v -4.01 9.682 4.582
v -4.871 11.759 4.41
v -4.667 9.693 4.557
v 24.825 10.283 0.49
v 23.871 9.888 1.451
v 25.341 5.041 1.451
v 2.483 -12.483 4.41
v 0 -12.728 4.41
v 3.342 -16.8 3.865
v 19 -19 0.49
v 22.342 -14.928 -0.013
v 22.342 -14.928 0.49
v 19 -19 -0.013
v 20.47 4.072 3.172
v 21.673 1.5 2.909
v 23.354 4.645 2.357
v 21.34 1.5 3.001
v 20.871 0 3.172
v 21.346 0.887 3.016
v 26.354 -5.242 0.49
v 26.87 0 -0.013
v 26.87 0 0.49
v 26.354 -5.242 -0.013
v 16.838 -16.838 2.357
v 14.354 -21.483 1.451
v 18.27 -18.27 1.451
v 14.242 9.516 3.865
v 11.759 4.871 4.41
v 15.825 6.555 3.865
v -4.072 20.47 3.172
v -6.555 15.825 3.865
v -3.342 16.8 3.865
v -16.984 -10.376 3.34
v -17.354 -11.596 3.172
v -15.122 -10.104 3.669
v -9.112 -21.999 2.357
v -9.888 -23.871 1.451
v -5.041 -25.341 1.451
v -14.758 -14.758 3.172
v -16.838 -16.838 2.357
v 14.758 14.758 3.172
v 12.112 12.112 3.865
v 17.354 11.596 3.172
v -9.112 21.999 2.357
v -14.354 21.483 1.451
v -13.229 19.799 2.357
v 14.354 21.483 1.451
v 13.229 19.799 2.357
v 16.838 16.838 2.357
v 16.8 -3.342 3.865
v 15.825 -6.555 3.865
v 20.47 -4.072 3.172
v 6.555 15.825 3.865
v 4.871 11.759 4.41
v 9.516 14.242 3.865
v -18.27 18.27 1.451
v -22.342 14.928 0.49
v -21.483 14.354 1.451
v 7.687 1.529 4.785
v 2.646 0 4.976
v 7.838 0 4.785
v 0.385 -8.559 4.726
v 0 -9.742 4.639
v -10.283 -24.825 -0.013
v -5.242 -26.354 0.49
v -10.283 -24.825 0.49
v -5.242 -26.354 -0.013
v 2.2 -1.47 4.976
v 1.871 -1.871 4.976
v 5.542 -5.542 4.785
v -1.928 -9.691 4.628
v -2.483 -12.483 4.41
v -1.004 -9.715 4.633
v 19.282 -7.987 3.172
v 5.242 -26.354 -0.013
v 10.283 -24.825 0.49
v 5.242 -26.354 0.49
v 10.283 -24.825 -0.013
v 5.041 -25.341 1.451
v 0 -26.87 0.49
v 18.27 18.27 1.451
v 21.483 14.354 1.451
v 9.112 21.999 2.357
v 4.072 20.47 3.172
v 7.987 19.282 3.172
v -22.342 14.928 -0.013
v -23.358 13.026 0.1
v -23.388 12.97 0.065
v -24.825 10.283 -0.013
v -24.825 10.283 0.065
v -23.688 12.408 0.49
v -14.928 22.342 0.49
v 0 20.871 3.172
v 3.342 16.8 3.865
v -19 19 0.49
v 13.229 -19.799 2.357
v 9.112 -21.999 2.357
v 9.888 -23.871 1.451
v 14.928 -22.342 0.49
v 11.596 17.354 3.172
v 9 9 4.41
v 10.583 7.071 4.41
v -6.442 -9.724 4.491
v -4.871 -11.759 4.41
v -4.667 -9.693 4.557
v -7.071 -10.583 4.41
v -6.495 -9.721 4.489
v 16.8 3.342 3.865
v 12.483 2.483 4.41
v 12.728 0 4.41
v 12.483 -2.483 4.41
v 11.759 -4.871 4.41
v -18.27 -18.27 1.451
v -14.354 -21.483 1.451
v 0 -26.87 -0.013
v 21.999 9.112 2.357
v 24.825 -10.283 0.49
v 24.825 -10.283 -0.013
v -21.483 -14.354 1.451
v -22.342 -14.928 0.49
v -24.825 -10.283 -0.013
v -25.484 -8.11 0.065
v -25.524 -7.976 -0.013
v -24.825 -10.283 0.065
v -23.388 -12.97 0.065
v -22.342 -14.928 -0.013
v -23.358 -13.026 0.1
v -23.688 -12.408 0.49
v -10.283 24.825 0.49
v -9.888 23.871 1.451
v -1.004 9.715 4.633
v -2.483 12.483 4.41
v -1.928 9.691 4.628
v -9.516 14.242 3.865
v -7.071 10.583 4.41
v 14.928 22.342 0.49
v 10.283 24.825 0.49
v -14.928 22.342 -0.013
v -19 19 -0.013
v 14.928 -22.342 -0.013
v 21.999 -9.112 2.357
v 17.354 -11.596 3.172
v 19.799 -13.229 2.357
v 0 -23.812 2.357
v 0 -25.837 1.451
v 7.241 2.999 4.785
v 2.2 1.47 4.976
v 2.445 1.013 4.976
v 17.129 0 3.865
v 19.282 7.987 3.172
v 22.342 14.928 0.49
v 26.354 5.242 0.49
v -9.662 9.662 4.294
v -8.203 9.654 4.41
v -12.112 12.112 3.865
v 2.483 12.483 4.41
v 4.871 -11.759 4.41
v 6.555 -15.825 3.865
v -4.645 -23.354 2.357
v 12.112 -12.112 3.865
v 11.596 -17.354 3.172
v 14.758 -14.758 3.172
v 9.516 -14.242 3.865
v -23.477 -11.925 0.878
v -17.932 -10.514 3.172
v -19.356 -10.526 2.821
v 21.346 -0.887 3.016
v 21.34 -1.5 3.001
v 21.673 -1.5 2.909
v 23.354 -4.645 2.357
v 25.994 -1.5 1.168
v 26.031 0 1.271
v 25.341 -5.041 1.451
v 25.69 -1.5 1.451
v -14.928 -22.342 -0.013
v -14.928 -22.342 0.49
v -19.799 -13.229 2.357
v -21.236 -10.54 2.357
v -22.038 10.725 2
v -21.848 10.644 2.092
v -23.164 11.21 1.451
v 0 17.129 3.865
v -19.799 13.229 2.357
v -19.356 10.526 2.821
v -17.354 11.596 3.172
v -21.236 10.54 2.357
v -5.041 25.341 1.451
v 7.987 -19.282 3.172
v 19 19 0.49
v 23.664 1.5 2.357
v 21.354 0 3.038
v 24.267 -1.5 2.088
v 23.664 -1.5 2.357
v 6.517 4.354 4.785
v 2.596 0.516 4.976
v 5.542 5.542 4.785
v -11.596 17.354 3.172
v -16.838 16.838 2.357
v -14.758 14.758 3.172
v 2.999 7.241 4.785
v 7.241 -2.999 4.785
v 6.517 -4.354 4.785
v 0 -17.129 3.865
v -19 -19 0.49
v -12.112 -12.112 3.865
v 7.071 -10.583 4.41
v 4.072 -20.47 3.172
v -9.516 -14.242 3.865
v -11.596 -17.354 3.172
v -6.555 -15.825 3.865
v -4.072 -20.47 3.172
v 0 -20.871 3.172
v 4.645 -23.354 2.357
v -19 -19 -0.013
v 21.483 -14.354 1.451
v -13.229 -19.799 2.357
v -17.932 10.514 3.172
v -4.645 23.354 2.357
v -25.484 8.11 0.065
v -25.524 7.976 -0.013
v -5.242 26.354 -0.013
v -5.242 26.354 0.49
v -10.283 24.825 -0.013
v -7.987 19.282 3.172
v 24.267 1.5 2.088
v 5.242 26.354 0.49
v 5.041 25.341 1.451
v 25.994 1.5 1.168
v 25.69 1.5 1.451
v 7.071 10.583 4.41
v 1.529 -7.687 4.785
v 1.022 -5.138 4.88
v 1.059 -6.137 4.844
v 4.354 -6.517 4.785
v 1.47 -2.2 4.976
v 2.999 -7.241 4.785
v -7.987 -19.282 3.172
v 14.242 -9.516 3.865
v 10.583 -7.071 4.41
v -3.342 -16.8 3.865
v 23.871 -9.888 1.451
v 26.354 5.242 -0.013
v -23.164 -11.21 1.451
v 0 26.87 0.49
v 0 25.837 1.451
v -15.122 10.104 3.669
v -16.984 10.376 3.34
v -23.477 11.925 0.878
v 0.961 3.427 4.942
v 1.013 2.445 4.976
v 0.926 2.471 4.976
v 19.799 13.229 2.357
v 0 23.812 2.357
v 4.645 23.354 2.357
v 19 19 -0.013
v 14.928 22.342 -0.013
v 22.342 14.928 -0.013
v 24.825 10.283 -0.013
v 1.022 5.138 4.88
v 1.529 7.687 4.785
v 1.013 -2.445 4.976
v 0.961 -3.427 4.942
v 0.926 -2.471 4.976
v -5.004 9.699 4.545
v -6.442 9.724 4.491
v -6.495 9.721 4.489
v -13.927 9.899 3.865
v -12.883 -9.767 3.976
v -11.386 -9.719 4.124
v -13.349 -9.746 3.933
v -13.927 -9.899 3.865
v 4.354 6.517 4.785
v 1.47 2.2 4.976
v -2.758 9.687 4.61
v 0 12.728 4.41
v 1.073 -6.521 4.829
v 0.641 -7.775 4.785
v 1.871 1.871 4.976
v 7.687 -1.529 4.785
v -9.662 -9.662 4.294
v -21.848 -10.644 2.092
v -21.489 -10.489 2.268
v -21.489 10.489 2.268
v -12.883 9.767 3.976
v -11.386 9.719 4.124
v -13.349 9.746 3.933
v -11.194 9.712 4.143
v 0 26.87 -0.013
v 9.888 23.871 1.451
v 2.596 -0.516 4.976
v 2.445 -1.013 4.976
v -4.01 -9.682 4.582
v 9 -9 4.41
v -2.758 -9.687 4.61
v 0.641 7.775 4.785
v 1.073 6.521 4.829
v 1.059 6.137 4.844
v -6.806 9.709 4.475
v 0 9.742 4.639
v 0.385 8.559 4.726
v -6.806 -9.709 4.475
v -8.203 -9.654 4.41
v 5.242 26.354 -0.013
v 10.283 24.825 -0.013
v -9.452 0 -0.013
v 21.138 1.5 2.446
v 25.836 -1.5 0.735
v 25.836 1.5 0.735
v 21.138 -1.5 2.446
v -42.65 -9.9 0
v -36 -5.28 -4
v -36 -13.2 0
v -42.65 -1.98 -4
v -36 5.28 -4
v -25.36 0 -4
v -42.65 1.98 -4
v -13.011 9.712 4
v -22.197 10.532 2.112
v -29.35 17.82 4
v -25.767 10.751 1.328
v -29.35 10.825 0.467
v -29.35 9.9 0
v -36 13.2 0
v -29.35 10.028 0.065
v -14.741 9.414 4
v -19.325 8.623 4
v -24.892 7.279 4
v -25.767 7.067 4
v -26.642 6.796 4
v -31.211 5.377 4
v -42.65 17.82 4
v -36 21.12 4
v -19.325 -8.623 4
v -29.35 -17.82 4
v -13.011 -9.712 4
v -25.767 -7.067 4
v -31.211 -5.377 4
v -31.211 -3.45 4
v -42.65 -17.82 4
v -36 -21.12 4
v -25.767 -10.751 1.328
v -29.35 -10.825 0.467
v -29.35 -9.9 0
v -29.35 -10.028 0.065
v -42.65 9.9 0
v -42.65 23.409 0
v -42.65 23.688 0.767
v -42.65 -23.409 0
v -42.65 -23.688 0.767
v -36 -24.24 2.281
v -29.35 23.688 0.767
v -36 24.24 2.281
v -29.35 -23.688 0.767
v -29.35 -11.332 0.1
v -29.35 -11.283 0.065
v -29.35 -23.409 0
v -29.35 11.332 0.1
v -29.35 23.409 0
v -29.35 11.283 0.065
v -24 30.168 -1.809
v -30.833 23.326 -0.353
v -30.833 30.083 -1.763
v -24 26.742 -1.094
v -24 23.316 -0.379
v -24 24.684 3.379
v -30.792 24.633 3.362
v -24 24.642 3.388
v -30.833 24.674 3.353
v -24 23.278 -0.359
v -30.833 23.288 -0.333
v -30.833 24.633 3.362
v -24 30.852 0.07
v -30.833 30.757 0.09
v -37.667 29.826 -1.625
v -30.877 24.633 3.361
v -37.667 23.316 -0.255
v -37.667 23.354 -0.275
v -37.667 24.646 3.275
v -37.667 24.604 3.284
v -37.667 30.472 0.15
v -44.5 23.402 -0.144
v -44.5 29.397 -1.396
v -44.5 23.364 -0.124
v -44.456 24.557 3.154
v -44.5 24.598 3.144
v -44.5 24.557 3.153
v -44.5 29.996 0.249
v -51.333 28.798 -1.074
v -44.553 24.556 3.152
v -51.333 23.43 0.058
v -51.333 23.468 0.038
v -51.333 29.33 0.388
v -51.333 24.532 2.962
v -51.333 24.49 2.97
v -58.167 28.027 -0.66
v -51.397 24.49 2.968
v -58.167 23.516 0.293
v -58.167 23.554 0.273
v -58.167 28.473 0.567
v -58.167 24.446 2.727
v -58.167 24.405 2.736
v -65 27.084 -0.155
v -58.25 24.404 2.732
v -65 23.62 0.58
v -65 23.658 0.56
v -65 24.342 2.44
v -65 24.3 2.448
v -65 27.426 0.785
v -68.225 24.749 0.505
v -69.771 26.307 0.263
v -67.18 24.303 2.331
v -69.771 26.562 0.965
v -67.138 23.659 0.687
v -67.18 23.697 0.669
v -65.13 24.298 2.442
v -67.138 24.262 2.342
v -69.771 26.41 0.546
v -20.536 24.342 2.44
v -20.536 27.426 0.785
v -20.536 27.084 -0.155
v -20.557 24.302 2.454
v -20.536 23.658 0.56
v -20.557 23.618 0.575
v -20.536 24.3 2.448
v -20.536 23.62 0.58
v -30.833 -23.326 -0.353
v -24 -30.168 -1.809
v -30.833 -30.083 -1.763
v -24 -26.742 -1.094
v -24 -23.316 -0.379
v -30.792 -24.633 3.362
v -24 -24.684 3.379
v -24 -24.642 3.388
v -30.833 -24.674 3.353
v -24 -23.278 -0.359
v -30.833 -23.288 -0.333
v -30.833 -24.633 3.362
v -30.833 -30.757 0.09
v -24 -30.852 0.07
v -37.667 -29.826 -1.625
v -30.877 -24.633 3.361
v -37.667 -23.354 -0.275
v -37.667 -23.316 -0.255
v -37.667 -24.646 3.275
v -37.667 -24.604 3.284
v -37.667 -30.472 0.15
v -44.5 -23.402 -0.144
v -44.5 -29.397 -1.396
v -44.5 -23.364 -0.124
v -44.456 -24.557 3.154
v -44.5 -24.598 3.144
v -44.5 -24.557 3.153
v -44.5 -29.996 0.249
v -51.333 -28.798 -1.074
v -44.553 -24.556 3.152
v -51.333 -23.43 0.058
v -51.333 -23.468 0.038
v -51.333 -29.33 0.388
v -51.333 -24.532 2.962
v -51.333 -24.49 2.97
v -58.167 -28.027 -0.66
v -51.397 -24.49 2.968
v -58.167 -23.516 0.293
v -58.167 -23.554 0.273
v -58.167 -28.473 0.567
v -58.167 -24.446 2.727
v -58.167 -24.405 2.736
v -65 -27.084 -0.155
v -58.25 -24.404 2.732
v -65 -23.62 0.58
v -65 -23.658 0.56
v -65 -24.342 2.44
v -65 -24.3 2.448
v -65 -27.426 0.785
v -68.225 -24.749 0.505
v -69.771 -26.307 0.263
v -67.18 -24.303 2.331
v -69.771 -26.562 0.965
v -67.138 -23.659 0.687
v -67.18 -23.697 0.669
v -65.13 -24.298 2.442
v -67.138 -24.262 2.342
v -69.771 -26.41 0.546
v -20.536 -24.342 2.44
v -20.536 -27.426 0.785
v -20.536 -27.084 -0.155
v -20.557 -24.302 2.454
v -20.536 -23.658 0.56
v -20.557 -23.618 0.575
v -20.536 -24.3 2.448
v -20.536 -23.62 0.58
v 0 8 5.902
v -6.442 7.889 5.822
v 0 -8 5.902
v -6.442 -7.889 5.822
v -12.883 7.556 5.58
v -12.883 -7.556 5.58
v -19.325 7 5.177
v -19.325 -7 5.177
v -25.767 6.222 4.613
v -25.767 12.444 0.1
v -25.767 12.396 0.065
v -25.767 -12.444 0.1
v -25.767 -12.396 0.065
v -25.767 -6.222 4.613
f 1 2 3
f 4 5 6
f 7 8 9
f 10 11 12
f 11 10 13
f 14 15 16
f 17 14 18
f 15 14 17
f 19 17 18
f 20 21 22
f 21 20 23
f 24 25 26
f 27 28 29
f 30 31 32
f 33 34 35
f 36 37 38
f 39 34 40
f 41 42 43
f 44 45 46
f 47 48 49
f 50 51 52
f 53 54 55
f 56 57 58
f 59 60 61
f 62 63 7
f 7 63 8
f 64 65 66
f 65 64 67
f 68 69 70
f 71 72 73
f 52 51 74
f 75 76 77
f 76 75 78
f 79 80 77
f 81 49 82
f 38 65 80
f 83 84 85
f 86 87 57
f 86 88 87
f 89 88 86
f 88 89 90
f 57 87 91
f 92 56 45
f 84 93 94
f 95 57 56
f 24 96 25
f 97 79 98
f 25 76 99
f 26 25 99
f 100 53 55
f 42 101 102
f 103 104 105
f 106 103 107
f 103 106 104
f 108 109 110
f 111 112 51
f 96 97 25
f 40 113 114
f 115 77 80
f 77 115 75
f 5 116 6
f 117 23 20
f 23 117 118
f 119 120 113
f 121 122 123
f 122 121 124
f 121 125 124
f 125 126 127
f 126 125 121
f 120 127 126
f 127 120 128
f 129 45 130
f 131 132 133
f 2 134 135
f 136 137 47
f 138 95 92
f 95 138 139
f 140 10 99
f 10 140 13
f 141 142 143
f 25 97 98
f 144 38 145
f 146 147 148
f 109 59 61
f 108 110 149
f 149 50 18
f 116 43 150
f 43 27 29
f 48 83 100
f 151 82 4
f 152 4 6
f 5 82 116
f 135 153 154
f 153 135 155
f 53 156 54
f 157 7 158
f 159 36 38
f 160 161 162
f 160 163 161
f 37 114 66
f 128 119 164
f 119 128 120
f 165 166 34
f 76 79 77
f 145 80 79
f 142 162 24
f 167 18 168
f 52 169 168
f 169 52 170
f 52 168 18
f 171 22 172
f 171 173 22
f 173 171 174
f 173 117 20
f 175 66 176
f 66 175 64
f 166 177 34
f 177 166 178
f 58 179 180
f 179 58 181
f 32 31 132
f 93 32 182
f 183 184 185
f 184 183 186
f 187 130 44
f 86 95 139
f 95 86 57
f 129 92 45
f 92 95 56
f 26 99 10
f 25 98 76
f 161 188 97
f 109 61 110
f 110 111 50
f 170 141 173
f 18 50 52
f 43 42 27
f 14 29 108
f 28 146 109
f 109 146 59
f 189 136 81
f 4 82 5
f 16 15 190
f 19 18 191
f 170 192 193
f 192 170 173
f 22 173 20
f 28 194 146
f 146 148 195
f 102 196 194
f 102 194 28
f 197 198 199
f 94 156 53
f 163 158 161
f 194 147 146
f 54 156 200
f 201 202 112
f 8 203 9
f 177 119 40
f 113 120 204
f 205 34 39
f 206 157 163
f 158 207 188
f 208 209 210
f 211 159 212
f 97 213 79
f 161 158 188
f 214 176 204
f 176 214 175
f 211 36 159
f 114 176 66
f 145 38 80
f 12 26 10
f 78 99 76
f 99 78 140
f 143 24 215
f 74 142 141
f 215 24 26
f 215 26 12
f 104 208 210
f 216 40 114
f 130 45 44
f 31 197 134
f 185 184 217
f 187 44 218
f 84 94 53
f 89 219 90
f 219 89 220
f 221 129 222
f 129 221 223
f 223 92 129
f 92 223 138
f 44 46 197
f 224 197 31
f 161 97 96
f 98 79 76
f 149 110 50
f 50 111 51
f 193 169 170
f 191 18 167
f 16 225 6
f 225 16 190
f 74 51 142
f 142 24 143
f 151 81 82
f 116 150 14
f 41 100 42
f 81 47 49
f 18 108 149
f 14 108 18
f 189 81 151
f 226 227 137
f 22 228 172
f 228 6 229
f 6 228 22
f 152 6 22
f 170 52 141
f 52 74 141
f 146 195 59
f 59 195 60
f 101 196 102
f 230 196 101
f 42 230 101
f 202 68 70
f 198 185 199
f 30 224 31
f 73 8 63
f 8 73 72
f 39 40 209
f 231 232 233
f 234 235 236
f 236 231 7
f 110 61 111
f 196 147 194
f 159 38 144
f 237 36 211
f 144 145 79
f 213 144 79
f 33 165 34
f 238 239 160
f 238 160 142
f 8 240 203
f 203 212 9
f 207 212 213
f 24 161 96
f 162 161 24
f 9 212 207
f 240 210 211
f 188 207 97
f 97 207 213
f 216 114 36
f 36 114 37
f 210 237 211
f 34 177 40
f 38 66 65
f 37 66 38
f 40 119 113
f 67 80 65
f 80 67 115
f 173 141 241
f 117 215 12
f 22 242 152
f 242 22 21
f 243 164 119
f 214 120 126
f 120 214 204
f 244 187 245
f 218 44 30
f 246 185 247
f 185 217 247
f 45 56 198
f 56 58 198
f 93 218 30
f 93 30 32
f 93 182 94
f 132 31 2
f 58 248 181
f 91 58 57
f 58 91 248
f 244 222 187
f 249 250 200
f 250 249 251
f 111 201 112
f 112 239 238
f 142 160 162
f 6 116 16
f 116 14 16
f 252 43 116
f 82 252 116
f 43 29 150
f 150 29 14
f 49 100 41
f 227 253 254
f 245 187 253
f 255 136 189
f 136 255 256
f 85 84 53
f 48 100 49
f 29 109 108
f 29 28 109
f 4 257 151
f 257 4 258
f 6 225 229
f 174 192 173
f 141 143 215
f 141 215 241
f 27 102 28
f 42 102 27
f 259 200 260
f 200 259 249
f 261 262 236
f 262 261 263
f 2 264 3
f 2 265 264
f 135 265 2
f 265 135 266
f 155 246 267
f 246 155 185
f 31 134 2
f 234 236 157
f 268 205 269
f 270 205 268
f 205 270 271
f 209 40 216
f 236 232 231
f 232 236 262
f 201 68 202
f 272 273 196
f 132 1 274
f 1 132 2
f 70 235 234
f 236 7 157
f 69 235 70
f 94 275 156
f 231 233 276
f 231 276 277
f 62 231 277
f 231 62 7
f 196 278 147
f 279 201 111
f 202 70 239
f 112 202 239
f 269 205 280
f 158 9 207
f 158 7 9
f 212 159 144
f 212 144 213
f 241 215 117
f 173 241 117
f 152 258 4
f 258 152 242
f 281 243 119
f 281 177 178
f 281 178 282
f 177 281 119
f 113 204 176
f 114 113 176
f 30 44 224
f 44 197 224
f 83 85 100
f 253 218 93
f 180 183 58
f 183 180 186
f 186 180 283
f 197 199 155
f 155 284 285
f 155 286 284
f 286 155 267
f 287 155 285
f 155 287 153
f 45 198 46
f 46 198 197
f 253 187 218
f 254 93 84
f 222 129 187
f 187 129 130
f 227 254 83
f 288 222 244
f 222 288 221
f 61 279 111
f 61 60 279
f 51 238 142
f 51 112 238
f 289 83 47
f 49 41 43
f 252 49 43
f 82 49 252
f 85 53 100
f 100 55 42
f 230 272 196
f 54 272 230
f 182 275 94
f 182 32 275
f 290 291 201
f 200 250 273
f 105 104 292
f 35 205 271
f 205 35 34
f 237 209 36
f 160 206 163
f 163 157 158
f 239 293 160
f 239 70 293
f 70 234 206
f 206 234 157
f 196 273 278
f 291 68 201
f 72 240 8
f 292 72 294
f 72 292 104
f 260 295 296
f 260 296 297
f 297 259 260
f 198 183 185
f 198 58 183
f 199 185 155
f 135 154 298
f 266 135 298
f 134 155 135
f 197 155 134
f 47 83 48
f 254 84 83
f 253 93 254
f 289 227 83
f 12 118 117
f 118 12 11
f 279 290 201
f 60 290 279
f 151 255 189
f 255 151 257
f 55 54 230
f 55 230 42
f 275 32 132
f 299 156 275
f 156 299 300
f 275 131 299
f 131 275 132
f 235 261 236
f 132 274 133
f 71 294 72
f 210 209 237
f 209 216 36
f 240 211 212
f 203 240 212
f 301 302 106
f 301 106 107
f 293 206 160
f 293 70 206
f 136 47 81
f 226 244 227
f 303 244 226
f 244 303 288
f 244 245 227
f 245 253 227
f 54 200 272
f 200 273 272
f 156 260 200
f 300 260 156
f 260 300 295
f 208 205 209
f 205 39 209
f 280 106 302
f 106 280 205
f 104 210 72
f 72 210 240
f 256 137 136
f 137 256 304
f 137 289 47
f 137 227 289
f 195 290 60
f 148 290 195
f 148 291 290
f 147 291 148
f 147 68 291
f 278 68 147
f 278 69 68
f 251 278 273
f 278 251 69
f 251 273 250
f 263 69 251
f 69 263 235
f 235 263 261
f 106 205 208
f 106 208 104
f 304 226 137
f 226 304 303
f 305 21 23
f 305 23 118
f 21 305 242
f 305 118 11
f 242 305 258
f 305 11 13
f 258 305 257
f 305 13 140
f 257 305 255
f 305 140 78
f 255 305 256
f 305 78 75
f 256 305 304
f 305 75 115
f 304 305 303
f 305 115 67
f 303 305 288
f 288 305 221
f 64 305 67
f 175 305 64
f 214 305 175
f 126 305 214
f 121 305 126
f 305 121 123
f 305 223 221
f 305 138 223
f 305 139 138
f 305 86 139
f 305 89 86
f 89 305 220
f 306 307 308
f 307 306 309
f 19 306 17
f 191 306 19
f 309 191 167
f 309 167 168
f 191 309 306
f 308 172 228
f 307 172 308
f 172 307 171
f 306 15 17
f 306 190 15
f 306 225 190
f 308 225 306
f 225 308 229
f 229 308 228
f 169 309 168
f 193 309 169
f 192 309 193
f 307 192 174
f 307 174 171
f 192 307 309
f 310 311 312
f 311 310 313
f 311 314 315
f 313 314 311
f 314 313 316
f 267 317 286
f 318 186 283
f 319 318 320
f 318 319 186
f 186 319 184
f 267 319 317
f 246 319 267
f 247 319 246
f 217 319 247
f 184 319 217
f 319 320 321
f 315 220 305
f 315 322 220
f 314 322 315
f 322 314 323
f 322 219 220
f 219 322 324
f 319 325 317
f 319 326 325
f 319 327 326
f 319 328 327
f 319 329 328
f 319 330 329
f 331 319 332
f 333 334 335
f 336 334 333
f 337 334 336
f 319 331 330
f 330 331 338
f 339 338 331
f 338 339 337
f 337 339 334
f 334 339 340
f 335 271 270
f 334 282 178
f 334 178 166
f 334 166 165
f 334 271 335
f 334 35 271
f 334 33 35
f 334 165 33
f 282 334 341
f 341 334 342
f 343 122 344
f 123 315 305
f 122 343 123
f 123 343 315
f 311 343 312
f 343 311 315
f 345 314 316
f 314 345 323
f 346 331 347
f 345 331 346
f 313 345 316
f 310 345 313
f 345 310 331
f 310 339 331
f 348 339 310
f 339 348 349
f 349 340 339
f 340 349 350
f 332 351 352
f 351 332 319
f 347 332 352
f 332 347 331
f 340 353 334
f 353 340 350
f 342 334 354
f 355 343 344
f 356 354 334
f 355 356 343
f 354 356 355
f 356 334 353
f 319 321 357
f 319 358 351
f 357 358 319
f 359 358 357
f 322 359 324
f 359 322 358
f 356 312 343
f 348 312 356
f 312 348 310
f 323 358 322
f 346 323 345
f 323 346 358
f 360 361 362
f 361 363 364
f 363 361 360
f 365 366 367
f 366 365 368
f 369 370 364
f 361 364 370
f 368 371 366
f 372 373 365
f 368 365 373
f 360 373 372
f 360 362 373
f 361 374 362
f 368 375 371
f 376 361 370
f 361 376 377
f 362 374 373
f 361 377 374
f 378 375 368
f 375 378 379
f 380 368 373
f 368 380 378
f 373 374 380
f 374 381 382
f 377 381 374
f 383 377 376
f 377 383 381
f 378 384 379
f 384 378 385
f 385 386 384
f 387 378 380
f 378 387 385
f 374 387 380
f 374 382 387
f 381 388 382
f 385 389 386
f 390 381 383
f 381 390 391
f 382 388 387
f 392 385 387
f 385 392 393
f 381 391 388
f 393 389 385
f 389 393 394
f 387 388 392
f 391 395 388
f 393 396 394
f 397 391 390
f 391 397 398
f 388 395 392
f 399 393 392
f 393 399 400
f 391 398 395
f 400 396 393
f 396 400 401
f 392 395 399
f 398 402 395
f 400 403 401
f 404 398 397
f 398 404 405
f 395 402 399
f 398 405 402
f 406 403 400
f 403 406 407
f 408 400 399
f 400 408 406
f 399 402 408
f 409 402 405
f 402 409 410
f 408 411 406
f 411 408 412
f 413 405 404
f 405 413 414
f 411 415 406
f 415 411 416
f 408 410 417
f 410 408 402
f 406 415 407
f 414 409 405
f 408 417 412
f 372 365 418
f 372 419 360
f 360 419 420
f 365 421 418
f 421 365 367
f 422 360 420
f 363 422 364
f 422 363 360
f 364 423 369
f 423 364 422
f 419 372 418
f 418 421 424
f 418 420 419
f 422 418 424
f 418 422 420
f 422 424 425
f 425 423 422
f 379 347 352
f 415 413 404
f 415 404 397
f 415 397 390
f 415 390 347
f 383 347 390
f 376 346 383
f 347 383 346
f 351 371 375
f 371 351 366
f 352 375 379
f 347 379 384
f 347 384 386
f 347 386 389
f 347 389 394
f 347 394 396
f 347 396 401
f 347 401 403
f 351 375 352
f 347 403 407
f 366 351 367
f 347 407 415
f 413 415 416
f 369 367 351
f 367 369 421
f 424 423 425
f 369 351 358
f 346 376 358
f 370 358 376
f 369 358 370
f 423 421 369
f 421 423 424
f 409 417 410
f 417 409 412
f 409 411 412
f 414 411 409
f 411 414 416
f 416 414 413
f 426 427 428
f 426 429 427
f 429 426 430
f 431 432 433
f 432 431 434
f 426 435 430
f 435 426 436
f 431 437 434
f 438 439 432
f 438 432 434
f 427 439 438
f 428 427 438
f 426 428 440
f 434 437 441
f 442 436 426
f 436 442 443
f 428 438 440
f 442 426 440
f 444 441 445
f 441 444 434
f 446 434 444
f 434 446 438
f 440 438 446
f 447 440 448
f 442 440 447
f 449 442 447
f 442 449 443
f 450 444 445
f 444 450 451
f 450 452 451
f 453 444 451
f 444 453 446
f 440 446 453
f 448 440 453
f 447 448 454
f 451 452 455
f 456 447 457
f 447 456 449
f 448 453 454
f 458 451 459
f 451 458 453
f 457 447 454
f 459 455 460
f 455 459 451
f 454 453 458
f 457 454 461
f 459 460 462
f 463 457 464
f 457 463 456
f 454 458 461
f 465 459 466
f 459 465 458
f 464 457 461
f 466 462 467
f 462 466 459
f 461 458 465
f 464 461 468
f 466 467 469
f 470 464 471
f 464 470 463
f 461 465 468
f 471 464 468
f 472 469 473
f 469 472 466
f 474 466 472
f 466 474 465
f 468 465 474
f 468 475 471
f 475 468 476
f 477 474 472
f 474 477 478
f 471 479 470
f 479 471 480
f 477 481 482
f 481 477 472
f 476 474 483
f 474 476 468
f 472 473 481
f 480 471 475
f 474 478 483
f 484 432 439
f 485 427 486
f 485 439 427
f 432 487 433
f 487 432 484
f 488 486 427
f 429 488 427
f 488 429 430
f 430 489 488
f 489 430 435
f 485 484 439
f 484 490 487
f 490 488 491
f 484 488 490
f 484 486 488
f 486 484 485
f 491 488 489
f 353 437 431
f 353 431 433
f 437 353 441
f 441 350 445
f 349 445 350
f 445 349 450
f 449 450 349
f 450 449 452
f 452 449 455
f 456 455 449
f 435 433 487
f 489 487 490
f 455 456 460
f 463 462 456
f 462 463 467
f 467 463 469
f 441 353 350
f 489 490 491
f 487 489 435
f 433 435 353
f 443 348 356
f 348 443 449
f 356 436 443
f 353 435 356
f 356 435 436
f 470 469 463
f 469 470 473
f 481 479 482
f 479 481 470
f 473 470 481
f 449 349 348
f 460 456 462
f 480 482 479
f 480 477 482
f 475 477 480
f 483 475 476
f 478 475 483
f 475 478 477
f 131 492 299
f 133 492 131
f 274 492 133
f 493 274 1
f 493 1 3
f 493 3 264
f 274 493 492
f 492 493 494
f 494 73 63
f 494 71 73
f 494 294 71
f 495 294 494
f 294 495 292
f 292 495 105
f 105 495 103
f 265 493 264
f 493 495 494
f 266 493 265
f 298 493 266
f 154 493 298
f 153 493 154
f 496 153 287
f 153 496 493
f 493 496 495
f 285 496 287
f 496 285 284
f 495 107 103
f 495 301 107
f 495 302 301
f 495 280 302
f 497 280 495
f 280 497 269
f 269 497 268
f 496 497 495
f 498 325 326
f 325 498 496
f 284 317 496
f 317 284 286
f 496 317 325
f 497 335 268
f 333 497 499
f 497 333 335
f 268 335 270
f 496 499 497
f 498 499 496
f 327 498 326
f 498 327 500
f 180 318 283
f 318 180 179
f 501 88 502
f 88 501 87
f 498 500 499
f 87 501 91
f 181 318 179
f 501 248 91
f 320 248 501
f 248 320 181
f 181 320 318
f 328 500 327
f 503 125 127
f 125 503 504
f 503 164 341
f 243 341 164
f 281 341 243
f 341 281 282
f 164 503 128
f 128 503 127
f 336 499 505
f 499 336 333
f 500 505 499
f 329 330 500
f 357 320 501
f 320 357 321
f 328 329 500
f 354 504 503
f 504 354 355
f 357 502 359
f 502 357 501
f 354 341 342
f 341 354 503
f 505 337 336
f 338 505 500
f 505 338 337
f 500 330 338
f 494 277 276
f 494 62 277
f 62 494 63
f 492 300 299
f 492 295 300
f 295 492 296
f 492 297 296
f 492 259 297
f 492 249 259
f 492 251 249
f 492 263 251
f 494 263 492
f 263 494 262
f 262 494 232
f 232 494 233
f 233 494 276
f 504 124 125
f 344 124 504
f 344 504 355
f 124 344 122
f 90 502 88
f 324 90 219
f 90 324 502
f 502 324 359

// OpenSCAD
// file: icp.scad
use <../lib/util.scad>;

module icp_saucer_large(extend=false) {
    difference() {
        util_saucer(80,40,10);

        if (extend == false) {
            translate([-50,0,0])
                rotate([0,15,0])
                    cube(80,center=true);
        }

        util_mirrored([0,1,0])
            translate([-40,55,-1])
                rotate([-30,0,0])
                    cube(80,center=true);
            
        translate([40,0,0])
            rotate([0,30,0])
                cube(10,center=true);

        translate([35,0,6.4])
            rotate([0,-65,0])
                cube([5,5,7.5],center=true);

    }
}

module icp_saucer_large_2(faces=32) {
    difference() {
        util_ovoid(40,40,40,10,10,faces=faces);
        
        translate([0,0,-50])
        cube(100,center=true);

        translate([-50,0,0])
            rotate([0,15,0])
                cube(80,center=true);

        util_mirrored([0,1,0])
            translate([-40,55,-1])
                rotate([-30,0,0])
                    cube(80,center=true);
            
        translate([40,0,0])
            rotate([0,30,0])
                cube(10,center=true);

        translate([35,0,6.4])
            rotate([0,-65,0])
                cube([5,5,7.5],center=true);

    }
}

module tactical_shuttle() {
    difference() {
        util_saucer(9,9,2.25);

        translate([3,0,2])
            rotate([0,-66,0])
                cube([1.5,1.5,3],center=true);
    }

    translate([-3.5,0,1])
        scale([1,1,.5])
            rotate([90,0,0])
                cylinder(5,2,2,$fn=6,center=true);

    util_mirrored([0,1,0])
        translate([-4,1.5,1])
            rotate([90,0,0])
                util_nacelle(7.5,1,4,curved=true,up=false);
};


module runabout_old() {
    difference() {
        util_saucer(18,15,3);

        translate([6,0,3.3])
            rotate([0,-72,0])
                cube([3,3,5],center=true);
    }

    translate([-7.5,0,0])
        scale([1,1,.4])
            rotate([90,0,0])
                cylinder(9,4,4,$fn=6,center=true);

    translate([-7.5,0,1])
        mirror([0,0,1])
            util_nacelle_bar(15,2.5,2.5,.5);

    util_mirrored([0,1,0])
        translate([-3,6.5,-2])
            scale([1,1,.5])
                union() {
                    rotate([0,90,0])
                        cylinder(14,1.5,1.5,center=true,$fn=16);

                    util_mirrored([1,0,0])
                        translate([7,0,0])
                            sphere(1.5,$fn=16);
                }
}

module yacht() {
    difference() {
        util_saucer(27,27,3.5);

        translate([10,0,3])
            rotate([0,-75,0])
                cube([3,3,5],center=true);
    }

    translate([-13,0,0]) {

        difference(){
            mirror([0,0,1])
                util_saucer(16,8,2.5);

            translate([-4,0,-2.5])
                scale([1.5,1,1])
                    rotate([90,0,0])
                        cylinder(10,2.5,2.5,center=true,$fn=16);
            
            translate([-9,0,-5])
                cube(10,center=true);
            
            translate([7.5,0,-1.25])
                rotate([0,90,0])
                    cylinder(4,.5,1,$fn=16, center=true);
        }

        util_saucer(16,8,1.5);
    }

    translate([-11,0,0])
        difference() {
            util_nacelle_bar(25,2.5,27,.25);
            
            translate([-29.5,0,0])
                cylinder(40,20,20,center=true);

            util_mirrored([0,1,0])
                translate([11,25,0])
                    cylinder(40,25,25,center=true);
        }

    util_mirrored([0,1,0])
        translate([-14,11,2.5])
            util_nacelle(20,4,2,curved=true);
}


module science_runabout() {
    difference() {
        util_saucer(36,36,4);

        translate([15,0,3])
            rotate([0,-75,0])
                cube([3,3,5],center=true);
    }

    translate([-13,0,0]) difference() {
        scale([1.5,1,1.2])
            rotate([90,0,0])
                cylinder(15,4,4,$fn=6,center=true);
        
        translate([0,0,-10]) cube(20,center=true);
    }
    
    translate([-15,0,1])
        util_nacelle_bar(28,2.5,3,.5);
    
    util_mirrored([0,1,0])
        translate([-8,12,3])
            util_nacelle(24,4,2,curved=true);
}


module attack() {
    difference() {
        util_saucer(45,45,5);

        translate([20,0,3])
            rotate([0,-70,0])
                cube([3,3,5],center=true);
        
    }

    difference() {
        scale([1,1,2.5])
            util_body(45,45,1.5,6);
    
        translate([22.5,0,-1.2])
            sphere(1,$fn=16);
    }

    util_mirrored([0,1,0])
        translate([-12,12,-2.5])
            rotate([75,0,0])
                util_nacelle(40,5,12,curved=true,up=false);

    difference() {
        translate([-10,0,0])
            mirror([0,0,1])
                util_nacelle_bar(35,3.2,20,2);

        util_mirrored([0,1,0])
            translate([2,18,0])
                cylinder(15,15,15,center=true);
        
        translate([-38,0,0]) cylinder(15,22.5,22.5,center=true);
    }
}

module scout_old() {
    difference() {
        util_saucer(54,54,5);

        translate([24,0,3])
            rotate([0,-70,0])
                cube([3,3,5],center=true);
    }

    translate([-36,0,0]) 
    scale([1.33,.66,1]) {
        difference() {
            cylinder(8,8,32,center=true,$fn=4);
            translate([-35,0,0])
                cube(60,center=true);
        }

        difference() {
            cylinder(8,54,32,center=true,$fn=4);
            translate([-35,0,0])
                cube([60,200,60],center=true);
            translate([35,0,0])
                cube([60,200,60],center=true);
            translate([0,0,-60])
                cube(120,center=true);
        }
    }

    util_mirrored([0,1,0])
        translate([-24,24,1.5])
            rotate([-110,0,0])
                util_nacelle(45,4,8,curved=true);

    translate([0,0,.1])
    util_nacelle(42,32,6.7,curved=true);
}

module icp_large_saucer_common() {
    difference() {
        util_ovoid(45,45,90,5,2);
        translate([45,0,0])
        cube(16,center=true);
    }

    translate([-55,0,0]) {

        difference() {
            util_ovoid(75,25,20,8,10);
            translate([20,0,-10])
            scale([2,1,1])
            rotate([90,0,0])
            cylinder(h=45,r=10,center=true);

            translate([35+20,0,-35])
            cube(70,center=true);
        }
    }

    util_ovoid(
        9,60,18,8,1);

    util_ovoid(
        18,18,36,8,1);

}
// file: ../lib/util.scad
fn1 = 32;
fn2 = 16;

module util_half_sphere(radius, fn=fn1) {
    difference() {
        sphere(radius, $fn=fn);
        translate([0,0,-(radius+radius/19)])
            cube(2*radius+radius/10, center=true);
    }
}

function gcd(a,b) = a == b ? a : a > b ? gcd(a-b, b) : gcd(a, b-a);

module util_saucer(length, width, height, fn=fn1) {
    rad = gcd(length,gcd(width,height));
    //rad = 10;
    scale([length/(2*rad), width/(2*rad), height/rad])
        util_half_sphere(rad, fn);
}

module util_half_cylinder(length, radius, inner_fn=fn2, outer_fn=fn1) {
    maxval = max(length, 2*radius);
    intersection() {
        difference() {
            rotate([0,90,0])
                translate([0,0,-(length/2 + length/20)])
                    cylinder(length+length/10, radius, radius, $fn=inner_fn);
            
            translate([0,0,(maxval/2 + maxval/19)])
                cube(maxval+maxval/10, center=true);
        }
        
        translate([0,0,-(radius+radius/20)])
            cylinder(radius + radius/10, length/2, length/2, $fn=outer_fn);
    }
}

module util_body(length, width, height, upper_height, fn=fn1) {
    rad = gcd(length, gcd(width, upper_height));
    
    scale(.995) scale([length/(2*rad), width/(2*rad), 1])
        util_half_cylinder(2*rad, height, outer_fn=fn);
}

module util_graded_cylinder(height, radius_start, radius_end, grades=1, fn=fn1) {
    height_grade = height / grades;
    radius_grade = (radius_start - radius_end) / (grades * grades);
    for (i = [0 : 1 : grades]) {
        translate([0,0,i*height_grade])
            cylinder(height_grade, 
                     radius_start - i*radius_grade * i,
                     radius_start - (i+1) * radius_grade * (i+1),
                     $fn = fn);
    }
}

module util_nacelle(length, width, height, curved=false, up=true, front_bulge=false) {
    rad = min(width, height/2);
    grads = curved ? 6 : 1;
    scale_factor = front_bulge ? 1.1 : 1;
    direction = up ? -1 : 1;
    difference() {
        scale([1, width/ (2*rad), height/rad])
            difference() {
                union() {
                    rotate([0,-90,0])
                        rotate(30)
                            util_graded_cylinder(length-rad, rad, rad/2, grads, 6);
                    scale(scale_factor) 
                        rotate([0,90,0]) rotate(90) sphere(rad, $fn=6);
                }
                
                translate([-length/2, 0, direction * (height/2 + height/19)])
                    cube([length+length, width+width, height+height/10], center=true);
            }
        
        translate([-length-(curved?length/3:0), 0, -length/3])
            rotate([0,-45,0])
                cube(length, center=true);
    }
}

module util_mirrored(v) {
    children();
    mirror(v) children();
}

module util_ring(outer, inner, height) {
    difference() {
        translate([0,0,-height/2])
            cylinder(height, outer, outer);
        translate([0,0,-(height/2 + height/19)])
            cylinder(height+height/10, inner, inner);
    }
}

module util_star(radius, thick, num, half=false) {
    angle = 360/num;
    offset = half? angle/2 : 0;
    for (i = [0: 1: num]) {
        rotate(i* angle + offset)
            translate([radius/2,0,0])
                cube([radius, thick, thick], center=true);
    }
}

module util_ring_star(radius, thick, num, inner, half=false) {
    outer=inner+thick;
    avg = (inner + outer)/2;
    union() {
        difference() {
            util_star(radius, thick, num, half);
            cylinder(2*thick, outer, outer, $fn=num, center=true);
        }
        util_ring(outer, inner, thick);
    }
}

module util_hangar_disk(height, lower, upper, num, fn=fn1) {
    difference() {
            cylinder(height, lower, upper, $fn=fn, center=true);
        difference() {
            scale([1,1,22])
                util_star(1.1*upper, height/20, num, half=true);
            scale(.95)
                cylinder(height, lower, upper, $fn=fn, center=true);
        }
    }
}

module util_hangar_form(length, width, height, num, inner=0) {
    l = 0.6* max(length, width);
    h = 2.5* height;
    thick = min(height/20,1);
    inner = inner == 0 ? l/3 : inner;
    difference() {
        children();
        scale([1,1,h/thick]) 
            util_ring_star(l, thick, num, inner, half=true);
    }
    scale(.95) children();
}

module util_nacelle_bar(span, height, width, thickness) {
    rad = (span*span/(8*height) + height/2);
    outer = rad + thickness/2;
    inner = rad - thickness/2;
    difference(){
        translate([0,0,outer])
            rotate([0,90,0])
                util_ring(outer, inner, width);
    
        translate([0,0,1.1*outer+height])
            cube(2.2*outer, center=true);
    }
}

module util_q_sphere(rad, quadrant, faces) {
    x_sign = quadrant == 1 ? 1 :
             quadrant == 2 ? -1 :
             quadrant == 3 ? -1 :
             quadrant == 4 ? 1 : 0;
    z_sign = quadrant == 1 ? 1 :
             quadrant == 2 ? 1 :
             quadrant == 3 ? -1 :
             quadrant == 4 ? -1 : 0;
    
    difference() {
        sphere(rad, $fn=faces);

        translate([x_sign*(-1.1*rad - .01),0,0])
        cube(2.2*rad, center=true);

        translate([0,0,z_sign*(-1.1*rad - .01)])
        cube(2.2*rad, center=true);
    }
}

module util_ovoid(front_rad, back_rad, width, upper_rad, lower_rad, faces=32) {
    half_width = width/2;
    largest=max(front_rad, back_rad, half_width, upper_rad, lower_rad);
    smallest=min(front_rad, back_rad, half_width, upper_rad, lower_rad);
    
    union() {
        scale([front_rad/smallest, half_width/smallest, upper_rad/smallest])
        util_q_sphere(smallest, 1, faces);
        
        scale([front_rad/smallest, half_width/smallest, lower_rad/smallest])
        util_q_sphere(smallest, 4, faces);
        
        scale([back_rad/smallest, half_width/smallest, lower_rad/smallest])
        util_q_sphere(smallest, 3, faces);
        
        scale([back_rad/smallest, half_width/smallest, upper_rad/smallest])
        util_q_sphere(smallest, 2, faces);
    }
}
// main file
use <../lib/util.scad>;
use <icp.scad>;

module observer() {
    scout_old();

}

observer();
